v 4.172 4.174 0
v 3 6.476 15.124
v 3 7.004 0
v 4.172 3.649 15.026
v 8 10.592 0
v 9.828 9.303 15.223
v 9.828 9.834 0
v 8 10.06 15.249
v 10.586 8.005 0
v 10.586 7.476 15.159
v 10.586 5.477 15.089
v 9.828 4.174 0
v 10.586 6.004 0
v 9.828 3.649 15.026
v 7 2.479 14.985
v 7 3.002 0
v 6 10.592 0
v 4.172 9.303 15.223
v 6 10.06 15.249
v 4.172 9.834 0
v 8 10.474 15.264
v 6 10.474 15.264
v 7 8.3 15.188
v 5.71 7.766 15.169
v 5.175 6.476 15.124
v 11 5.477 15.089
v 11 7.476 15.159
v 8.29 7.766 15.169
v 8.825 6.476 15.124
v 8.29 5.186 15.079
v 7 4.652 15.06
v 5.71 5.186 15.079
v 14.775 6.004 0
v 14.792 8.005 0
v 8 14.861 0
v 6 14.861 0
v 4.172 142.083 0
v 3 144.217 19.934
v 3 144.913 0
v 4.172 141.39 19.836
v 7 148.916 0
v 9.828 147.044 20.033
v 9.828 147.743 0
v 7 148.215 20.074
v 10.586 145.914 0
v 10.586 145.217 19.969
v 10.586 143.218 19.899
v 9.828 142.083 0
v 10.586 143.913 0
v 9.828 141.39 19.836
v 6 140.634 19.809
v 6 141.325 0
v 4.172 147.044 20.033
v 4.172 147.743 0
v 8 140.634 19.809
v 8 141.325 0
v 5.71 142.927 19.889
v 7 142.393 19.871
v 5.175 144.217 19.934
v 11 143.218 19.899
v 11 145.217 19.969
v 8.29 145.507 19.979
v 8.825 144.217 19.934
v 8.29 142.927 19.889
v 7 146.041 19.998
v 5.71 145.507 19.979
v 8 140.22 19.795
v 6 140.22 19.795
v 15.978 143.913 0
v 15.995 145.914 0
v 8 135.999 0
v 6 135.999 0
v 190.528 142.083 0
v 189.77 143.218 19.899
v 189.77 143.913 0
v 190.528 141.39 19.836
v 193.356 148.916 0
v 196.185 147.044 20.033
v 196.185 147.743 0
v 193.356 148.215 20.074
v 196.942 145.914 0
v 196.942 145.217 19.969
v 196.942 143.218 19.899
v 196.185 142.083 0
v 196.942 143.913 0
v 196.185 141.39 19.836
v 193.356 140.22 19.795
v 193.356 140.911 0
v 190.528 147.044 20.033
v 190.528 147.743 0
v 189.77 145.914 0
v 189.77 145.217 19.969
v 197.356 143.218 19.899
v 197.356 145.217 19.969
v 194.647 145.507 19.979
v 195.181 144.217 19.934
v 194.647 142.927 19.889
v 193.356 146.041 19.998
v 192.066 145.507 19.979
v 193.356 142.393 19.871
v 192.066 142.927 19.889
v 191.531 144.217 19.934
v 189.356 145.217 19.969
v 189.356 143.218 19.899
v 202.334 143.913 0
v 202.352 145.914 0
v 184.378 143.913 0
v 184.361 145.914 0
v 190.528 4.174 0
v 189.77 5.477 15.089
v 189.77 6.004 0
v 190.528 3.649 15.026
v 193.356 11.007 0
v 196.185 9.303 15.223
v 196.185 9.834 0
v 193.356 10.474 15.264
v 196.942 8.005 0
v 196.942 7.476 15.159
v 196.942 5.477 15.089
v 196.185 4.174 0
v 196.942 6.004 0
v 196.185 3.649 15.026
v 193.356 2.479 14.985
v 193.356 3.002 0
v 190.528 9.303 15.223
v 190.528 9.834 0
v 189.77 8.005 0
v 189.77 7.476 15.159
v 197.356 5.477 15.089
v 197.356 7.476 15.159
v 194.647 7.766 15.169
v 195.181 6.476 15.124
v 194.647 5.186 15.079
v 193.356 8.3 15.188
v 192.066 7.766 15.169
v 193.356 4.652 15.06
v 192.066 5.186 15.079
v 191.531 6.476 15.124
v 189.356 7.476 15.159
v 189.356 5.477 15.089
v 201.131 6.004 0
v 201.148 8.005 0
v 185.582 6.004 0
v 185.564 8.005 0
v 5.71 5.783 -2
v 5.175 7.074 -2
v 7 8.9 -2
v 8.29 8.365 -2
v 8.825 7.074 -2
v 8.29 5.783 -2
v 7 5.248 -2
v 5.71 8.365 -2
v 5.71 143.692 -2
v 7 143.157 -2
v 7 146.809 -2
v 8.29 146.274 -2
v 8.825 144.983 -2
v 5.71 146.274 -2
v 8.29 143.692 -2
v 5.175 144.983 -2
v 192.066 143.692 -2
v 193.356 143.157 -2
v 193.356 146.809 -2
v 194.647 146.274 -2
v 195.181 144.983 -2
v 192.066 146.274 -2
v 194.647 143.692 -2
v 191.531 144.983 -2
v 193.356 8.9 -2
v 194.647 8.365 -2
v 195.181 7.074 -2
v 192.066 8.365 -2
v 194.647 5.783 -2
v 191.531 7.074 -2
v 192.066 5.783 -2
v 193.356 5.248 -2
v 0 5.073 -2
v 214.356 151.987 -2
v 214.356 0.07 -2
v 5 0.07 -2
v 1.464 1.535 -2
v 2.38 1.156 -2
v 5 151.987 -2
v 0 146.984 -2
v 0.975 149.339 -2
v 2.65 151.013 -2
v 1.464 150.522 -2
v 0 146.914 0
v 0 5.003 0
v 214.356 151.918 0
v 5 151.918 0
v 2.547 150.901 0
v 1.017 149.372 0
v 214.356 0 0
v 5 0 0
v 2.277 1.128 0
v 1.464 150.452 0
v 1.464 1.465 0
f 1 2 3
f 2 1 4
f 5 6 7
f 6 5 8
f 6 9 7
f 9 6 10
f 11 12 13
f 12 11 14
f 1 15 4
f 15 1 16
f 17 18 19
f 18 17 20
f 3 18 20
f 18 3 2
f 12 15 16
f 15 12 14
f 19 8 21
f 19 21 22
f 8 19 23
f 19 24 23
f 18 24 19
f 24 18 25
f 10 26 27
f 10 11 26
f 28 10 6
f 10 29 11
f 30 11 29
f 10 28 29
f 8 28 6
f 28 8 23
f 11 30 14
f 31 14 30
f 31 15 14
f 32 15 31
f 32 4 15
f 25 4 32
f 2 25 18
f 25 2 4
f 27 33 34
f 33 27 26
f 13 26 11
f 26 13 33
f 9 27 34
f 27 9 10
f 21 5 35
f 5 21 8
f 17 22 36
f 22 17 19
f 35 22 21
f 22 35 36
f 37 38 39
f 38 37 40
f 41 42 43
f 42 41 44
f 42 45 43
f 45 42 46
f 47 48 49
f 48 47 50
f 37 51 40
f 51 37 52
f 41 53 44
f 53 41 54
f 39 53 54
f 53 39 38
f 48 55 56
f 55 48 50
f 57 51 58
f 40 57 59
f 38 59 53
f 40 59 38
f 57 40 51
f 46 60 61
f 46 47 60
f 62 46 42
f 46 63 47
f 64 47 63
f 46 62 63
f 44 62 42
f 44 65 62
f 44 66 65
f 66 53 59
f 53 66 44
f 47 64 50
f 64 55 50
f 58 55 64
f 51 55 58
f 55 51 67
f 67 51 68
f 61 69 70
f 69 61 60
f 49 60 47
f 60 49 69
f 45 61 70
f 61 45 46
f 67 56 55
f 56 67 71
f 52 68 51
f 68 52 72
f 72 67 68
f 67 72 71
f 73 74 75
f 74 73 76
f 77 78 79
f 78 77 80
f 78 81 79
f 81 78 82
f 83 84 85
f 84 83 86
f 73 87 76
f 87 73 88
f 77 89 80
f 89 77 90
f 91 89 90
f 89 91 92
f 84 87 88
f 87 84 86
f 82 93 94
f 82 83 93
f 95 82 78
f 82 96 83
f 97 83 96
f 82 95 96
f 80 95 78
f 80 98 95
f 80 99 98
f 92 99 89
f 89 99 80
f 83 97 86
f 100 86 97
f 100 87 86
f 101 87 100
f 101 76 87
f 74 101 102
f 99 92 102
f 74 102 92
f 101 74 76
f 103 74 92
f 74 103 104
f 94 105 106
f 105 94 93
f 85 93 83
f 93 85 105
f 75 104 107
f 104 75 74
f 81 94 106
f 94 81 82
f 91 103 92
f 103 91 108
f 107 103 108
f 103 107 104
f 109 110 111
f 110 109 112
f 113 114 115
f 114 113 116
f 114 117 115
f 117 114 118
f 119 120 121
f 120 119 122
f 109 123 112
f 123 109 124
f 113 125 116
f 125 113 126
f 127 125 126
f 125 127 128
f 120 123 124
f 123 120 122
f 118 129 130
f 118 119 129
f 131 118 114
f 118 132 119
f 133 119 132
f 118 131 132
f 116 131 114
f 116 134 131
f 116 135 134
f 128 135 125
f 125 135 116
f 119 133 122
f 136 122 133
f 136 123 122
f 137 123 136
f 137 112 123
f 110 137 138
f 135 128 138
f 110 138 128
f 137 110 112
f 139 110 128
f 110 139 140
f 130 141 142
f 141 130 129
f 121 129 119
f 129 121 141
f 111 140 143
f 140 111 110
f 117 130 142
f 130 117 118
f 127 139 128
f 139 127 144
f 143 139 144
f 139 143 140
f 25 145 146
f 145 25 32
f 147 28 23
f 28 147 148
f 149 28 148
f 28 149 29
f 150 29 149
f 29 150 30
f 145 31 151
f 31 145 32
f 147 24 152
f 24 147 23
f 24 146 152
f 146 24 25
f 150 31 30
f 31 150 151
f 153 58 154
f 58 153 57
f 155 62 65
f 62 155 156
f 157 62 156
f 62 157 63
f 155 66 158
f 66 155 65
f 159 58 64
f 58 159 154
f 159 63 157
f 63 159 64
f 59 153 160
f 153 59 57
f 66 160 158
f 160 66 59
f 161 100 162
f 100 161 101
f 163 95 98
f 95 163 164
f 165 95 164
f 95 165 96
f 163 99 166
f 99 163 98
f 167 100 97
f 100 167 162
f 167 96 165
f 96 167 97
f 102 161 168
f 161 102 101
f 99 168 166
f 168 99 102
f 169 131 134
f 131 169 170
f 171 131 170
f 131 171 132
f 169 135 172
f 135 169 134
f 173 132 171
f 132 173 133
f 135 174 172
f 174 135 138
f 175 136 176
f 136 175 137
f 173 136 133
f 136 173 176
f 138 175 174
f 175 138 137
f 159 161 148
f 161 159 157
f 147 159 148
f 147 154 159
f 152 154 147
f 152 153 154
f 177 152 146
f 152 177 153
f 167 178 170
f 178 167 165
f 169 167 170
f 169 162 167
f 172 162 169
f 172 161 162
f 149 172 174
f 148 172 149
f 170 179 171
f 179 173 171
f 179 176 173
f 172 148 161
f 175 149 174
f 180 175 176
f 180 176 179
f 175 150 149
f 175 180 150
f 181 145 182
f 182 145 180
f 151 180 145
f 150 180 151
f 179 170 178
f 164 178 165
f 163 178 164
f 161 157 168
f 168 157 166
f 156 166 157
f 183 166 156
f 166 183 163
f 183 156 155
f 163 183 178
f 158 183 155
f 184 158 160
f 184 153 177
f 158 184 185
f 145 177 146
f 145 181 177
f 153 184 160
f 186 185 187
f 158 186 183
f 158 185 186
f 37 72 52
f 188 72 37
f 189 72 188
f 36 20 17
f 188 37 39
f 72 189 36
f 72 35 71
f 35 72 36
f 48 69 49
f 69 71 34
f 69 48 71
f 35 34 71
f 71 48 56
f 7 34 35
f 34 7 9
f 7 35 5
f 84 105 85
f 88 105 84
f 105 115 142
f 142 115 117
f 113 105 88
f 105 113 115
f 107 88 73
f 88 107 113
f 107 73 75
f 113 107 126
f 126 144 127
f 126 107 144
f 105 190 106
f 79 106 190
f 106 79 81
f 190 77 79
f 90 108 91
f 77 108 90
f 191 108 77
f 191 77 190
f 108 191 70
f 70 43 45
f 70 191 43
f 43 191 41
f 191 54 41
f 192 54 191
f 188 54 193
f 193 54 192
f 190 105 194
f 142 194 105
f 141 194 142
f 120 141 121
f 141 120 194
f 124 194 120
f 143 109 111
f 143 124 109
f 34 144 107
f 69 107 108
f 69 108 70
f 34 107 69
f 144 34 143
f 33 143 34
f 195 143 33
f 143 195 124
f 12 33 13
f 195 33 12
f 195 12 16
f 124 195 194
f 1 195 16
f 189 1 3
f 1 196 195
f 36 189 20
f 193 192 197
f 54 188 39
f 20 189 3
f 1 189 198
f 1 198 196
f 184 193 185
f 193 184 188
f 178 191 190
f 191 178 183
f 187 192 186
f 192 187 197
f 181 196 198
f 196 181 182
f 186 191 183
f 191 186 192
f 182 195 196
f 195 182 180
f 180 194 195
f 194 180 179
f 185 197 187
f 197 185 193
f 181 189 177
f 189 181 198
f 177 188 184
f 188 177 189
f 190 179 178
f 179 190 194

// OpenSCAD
// Generated by SolidPython 1.1.3 on 2025-01-18 15:26:41
$fn = 8;


difference() {
	intersection() {
		union() {
			difference() {
				rotate(a = 2, v = [1, 0, 0]) {
					translate(v = [0, 0, 15.4445000000]) {
						translate(v = [0, 133.8250000000, 0]) {
							translate(v = [10, 0, 0]) {
								difference() {
									translate(v = [-3, 0, 0]) {
										translate(v = [0, -126.8250000000, 0]) {
											translate(v = [0, 0, -68.5555000000]) {
												union() {
													translate(v = [0, 0, 0]) {
														translate(v = [0, 0, 0]) {
															union() {
																cylinder(h = 68, r = 4.0000000000);
																rotate(a = 90, v = [1, 0, 0]) {
																	linear_extrude(center = true, height = 2) {
																		polygon(paths = [[0, 1, 2, 3]], points = [[0, 0], [0, 68], [4.0000000000, 68], [21.0000000000, 0]]);
																	}
																}
																rotate(a = 90, v = [0, 0, 1]) {
																	rotate(a = 90, v = [1, 0, 0]) {
																		linear_extrude(center = true, height = 2) {
																			polygon(paths = [[0, 1, 2, 3]], points = [[0, 0], [0, 68], [4.0000000000, 68], [21.0000000000, 0]]);
																		}
																	}
																}
															}
														}
													}
													translate(v = [0, 0, 0]) {
														translate(v = [0, 137.8250000000, 0]) {
															union() {
																cylinder(h = 68, r = 4.0000000000);
																rotate(a = 90, v = [1, 0, 0]) {
																	linear_extrude(center = true, height = 2) {
																		polygon(paths = [[0, 1, 2, 3]], points = [[0, 0], [0, 68], [4.0000000000, 68], [21.0000000000, 0]]);
																	}
																}
																rotate(a = 270, v = [0, 0, 1]) {
																	rotate(a = 90, v = [1, 0, 0]) {
																		linear_extrude(center = true, height = 2) {
																			polygon(paths = [[0, 1, 2, 3]], points = [[0, 0], [0, 68], [4.0000000000, 68], [21.0000000000, 0]]);
																		}
																	}
																}
															}
														}
													}
													translate(v = [372.7125000000, 0, 0]) {
														translate(v = [0, 137.8250000000, 0]) {
															union() {
																cylinder(h = 68, r = 4.0000000000);
																rotate(a = 180, v = [0, 0, 1]) {
																	rotate(a = 90, v = [1, 0, 0]) {
																		linear_extrude(center = true, height = 2) {
																			polygon(paths = [[0, 1, 2, 3]], points = [[0, 0], [0, 68], [4.0000000000, 68], [21.0000000000, 0]]);
																		}
																	}
																}
																rotate(a = 270, v = [0, 0, 1]) {
																	rotate(a = 90, v = [1, 0, 0]) {
																		linear_extrude(center = true, height = 2) {
																			polygon(paths = [[0, 1, 2, 3]], points = [[0, 0], [0, 68], [4.0000000000, 68], [21.0000000000, 0]]);
																		}
																	}
																}
															}
														}
													}
													translate(v = [372.7125000000, 0, 0]) {
														translate(v = [0, 0, 0]) {
															union() {
																cylinder(h = 68, r = 4.0000000000);
																rotate(a = 180, v = [0, 0, 1]) {
																	rotate(a = 90, v = [1, 0, 0]) {
																		linear_extrude(center = true, height = 2) {
																			polygon(paths = [[0, 1, 2, 3]], points = [[0, 0], [0, 68], [4.0000000000, 68], [21.0000000000, 0]]);
																		}
																	}
																}
																rotate(a = 90, v = [0, 0, 1]) {
																	rotate(a = 90, v = [1, 0, 0]) {
																		linear_extrude(center = true, height = 2) {
																			polygon(paths = [[0, 1, 2, 3]], points = [[0, 0], [0, 68], [4.0000000000, 68], [21.0000000000, 0]]);
																		}
																	}
																}
															}
														}
													}
													translate(v = [186.3562500000, 0, 0]) {
														translate(v = [0, 137.8250000000, 0]) {
															union() {
																cylinder(h = 68, r = 4.0000000000);
																rotate(a = 90, v = [1, 0, 0]) {
																	linear_extrude(center = true, height = 2) {
																		polygon(paths = [[0, 1, 2, 3]], points = [[0, 0], [0, 68], [4.0000000000, 68], [21.0000000000, 0]]);
																	}
																}
																rotate(a = 180, v = [0, 0, 1]) {
																	rotate(a = 90, v = [1, 0, 0]) {
																		linear_extrude(center = true, height = 2) {
																			polygon(paths = [[0, 1, 2, 3]], points = [[0, 0], [0, 68], [4.0000000000, 68], [21.0000000000, 0]]);
																		}
																	}
																}
															}
														}
													}
													translate(v = [186.3562500000, 0, 0]) {
														translate(v = [0, 0, 0]) {
															union() {
																cylinder(h = 68, r = 4.0000000000);
																rotate(a = 90, v = [1, 0, 0]) {
																	linear_extrude(center = true, height = 2) {
																		polygon(paths = [[0, 1, 2, 3]], points = [[0, 0], [0, 68], [4.0000000000, 68], [21.0000000000, 0]]);
																	}
																}
																rotate(a = 180, v = [0, 0, 1]) {
																	rotate(a = 90, v = [1, 0, 0]) {
																		linear_extrude(center = true, height = 2) {
																			polygon(paths = [[0, 1, 2, 3]], points = [[0, 0], [0, 68], [4.0000000000, 68], [21.0000000000, 0]]);
																		}
																	}
																}
															}
														}
													}
												}
											}
										}
									}
									translate(v = [-3, 0, 0]) {
										translate(v = [0, -126.8250000000, 0]) {
											union() {
												translate(v = [0, 0, 0]) {
													translate(v = [0, 0, 0]) {
														cylinder(center = true, h = 272, r = 1.8250000000);
													}
												}
												translate(v = [0, 0, 0]) {
													translate(v = [0, 137.8250000000, 0]) {
														cylinder(center = true, h = 272, r = 1.8250000000);
													}
												}
												translate(v = [372.7125000000, 0, 0]) {
													translate(v = [0, 137.8250000000, 0]) {
														cylinder(center = true, h = 272, r = 1.8250000000);
													}
												}
												translate(v = [372.7125000000, 0, 0]) {
													translate(v = [0, 0, 0]) {
														cylinder(center = true, h = 272, r = 1.8250000000);
													}
												}
												translate(v = [186.3562500000, 0, 0]) {
													translate(v = [0, 137.8250000000, 0]) {
														cylinder(center = true, h = 272, r = 1.8250000000);
													}
												}
												translate(v = [186.3562500000, 0, 0]) {
													translate(v = [0, 0, 0]) {
														cylinder(center = true, h = 272, r = 1.8250000000);
													}
												}
											}
										}
									}
								}
							}
						}
					}
				}
				translate(v = [0, 0, -2]) {
					translate(v = [0, 0, -100]) {
						translate(v = [0, -75.9125000000, 0]) {
							translate(v = [-193.3562500000, 0, 0]) {
								cube(size = [773.4250000000, 303.6500000000, 100]);
							}
						}
					}
				}
			}
			intersection() {
				translate(v = [0, 0, -2]) {
					translate(v = [-193.3562500000, 0, 0]) {
						translate(v = [0, -75.9125000000, 0]) {
							cube(size = [773.4250000000, 303.6500000000, 2]);
						}
					}
				}
				rotate(a = 2, v = [1, 0, 0]) {
					translate(v = [0, 0, 15.4445000000]) {
						translate(v = [0, 133.8250000000, 0]) {
							translate(v = [10, 0, 0]) {
								translate(v = [0, 0, -34.0000000000]) {
									translate(v = [183.3562500000, 0, 0]) {
										translate(v = [0, -57.9125000000, 0]) {
											minkowski() {
												cube(center = true, size = [376.7125000000, 141.8250000000, 68]);
												cylinder(center = true, h = 0.5555000000, r = 5);
											}
										}
									}
								}
							}
						}
					}
				}
			}
		}
		translate(v = [0, 0, 15.4445000000]) {
			translate(v = [0, 133.8250000000, 0]) {
				translate(v = [10, 0, 0]) {
					translate(v = [-10.0000000000, 0, 0]) {
						translate(v = [0, -227.7375000000, 0]) {
							translate(v = [0, 0, -34.0000000000]) {
								cube(size = [214.3562500000, 303.6500000000, 136]);
							}
						}
					}
				}
			}
		}
	}
	rotate(a = 2, v = [1, 0, 0]) {
		translate(v = [0, 0, 15.4445000000]) {
			translate(v = [0, 133.8250000000, 0]) {
				translate(v = [10, 0, 0]) {
					translate(v = [-3, 0, 0]) {
						translate(v = [0, -126.8250000000, 0]) {
							union() {
								translate(v = [0, 0, 0]) {
									translate(v = [0, 0, 0]) {
										cylinder(center = true, h = 272, r = 1.8250000000);
									}
								}
								translate(v = [0, 0, 0]) {
									translate(v = [0, 137.8250000000, 0]) {
										cylinder(center = true, h = 272, r = 1.8250000000);
									}
								}
								translate(v = [372.7125000000, 0, 0]) {
									translate(v = [0, 137.8250000000, 0]) {
										cylinder(center = true, h = 272, r = 1.8250000000);
									}
								}
								translate(v = [372.7125000000, 0, 0]) {
									translate(v = [0, 0, 0]) {
										cylinder(center = true, h = 272, r = 1.8250000000);
									}
								}
								translate(v = [186.3562500000, 0, 0]) {
									translate(v = [0, 137.8250000000, 0]) {
										cylinder(center = true, h = 272, r = 1.8250000000);
									}
								}
								translate(v = [186.3562500000, 0, 0]) {
									translate(v = [0, 0, 0]) {
										cylinder(center = true, h = 272, r = 1.8250000000);
									}
								}
							}
						}
					}
				}
			}
		}
	}
}
/***********************************************
*********      SolidPython code:      **********
************************************************
 
#!/usr/bin/env python3

import argparse
from asyncio import subprocess
import json
# import math
import re
import logging
import os
# import os.path
import subprocess
# import time

from solid import *
from solid.utils import *

from parameters import Parameters
from keyboard import Keyboard
from cable import Cable

# Set logger level variables
console_logging_level = logging.WARN
file_logging_level = logging.DEBUG


# Get root logger and set main logger level to DEBUG
logger = logging.getLogger()
logger.setLevel(logging.DEBUG)


# Create formatters
console_formatter = logging.Formatter('%(name)s %(levelname)s: %(funcName)s: [%(lineno)d]: %(message)s')
file_formatter = logging.Formatter('%(asctime)s %(levelname)s %(name)s: %(funcName)s: [%(lineno)d]: %(message)s')

# Create console handler and set level to info
console_handler = logging.StreamHandler()
console_handler.setLevel(console_logging_level)

# Add formatter to console_handler
console_handler.setFormatter(console_formatter)

# Add console handler to logger
logger.addHandler(console_handler)

# Get file info that will be used to creat log file
script_location = Path(os.path.dirname(os.path.realpath(__file__)))
log_file_name = 'generator.log'
log_file_path = script_location / log_file_name

# Create file handler and set level to info
file_handler = logging.FileHandler(log_file_path, mode = 'w')
file_handler.setLevel(file_logging_level)

# Add formatter to file_handler
file_handler.setFormatter(file_formatter)

# Add file handler to logger
logger.addHandler(file_handler)


# Helper for parser to wnsure filename argument has to correct extension
def CheckExt(choices):
    class Act(argparse.Action):
        def __call__(self,parser,namespace,fname,option_string=None):
            ext = os.path.splitext(fname)[1][1:]
            if ext not in choices:
                option_string = '({})'.format(option_string) if option_string else ''
                parser.error("file doesn't end with one of {}{}".format(choices,option_string))
            else:
                setattr(namespace,self.dest,fname)

    return Act



def main():

    parser = argparse.ArgumentParser(description='Build custom keyboard SCAD file using keyboard layout editor format')
    parser.add_argument('-i', '--input-file', metavar = 'layout_json_file_name.json', help = 'A path to a keyboard layout editor json file', required = True, action=CheckExt({'json'}))
    # parser.add_argument('-o', '--output-folder', metavar = 'scad', help = 'A path to a folder to store the generated open scad file')
    parser.add_argument('-p', '--parameter-file', metavar = 'parameters.json', help = 'A JSON file containing paramters for the object buing made', default = None, action=CheckExt({'json'}))
    parser.add_argument('-s', '--section', metavar = 'section_num', help = 'The number of the section that should be built', type = int, default = -1)
    parser.add_argument('-a', '--all-sections', help = 'Output all the parts for all possible sections in separate files', default = False, action = 'store_true')
    parser.add_argument('-e', '--exploded', help = 'Create test file with each section shown as an exploded view', default = False, action = 'store_true')
    parser.add_argument('-f', '--fragments', metavar = 'num_fragments', help = 'The number of fragments to be used when creating curves', type = int, default = 8)
    parser.add_argument('-r', '--render', help = 'Render an STL from the generated scad file', default = False, action = 'store_true')
    parser.add_argument('--switch-type-in-filename', help = 'Add the switch type name and stabilizer type name to the filname', default = False, action = 'store_true')

    # Parse command line arguments
    args = parser.parse_args()
    logger.debug(vars(args))

    # Create Path object from input file argument
    input_file_path = Path(args.input_file)

    # Get base folder path
    base_path = input_file_path.parent

    # Get input file name onle
    file_name_only = input_file_path.name
    
    # Get layout name from file name
    layout_name = input_file_path.stem

    # Generate output scad and stl output folder paths
    output_base_folder = base_path / layout_name
    scad_folder_path = output_base_folder / 'scad'
    stl_folder_path = output_base_folder / 'stl'

    # Ensure all outpur folders exists
    if output_base_folder.is_dir() == False:
        output_base_folder.mkdir()

    if scad_folder_path.is_dir() == False:
        scad_folder_path.mkdir()

    if stl_folder_path.is_dir() == False:
        stl_folder_path.mkdir()

    logger.debug('layout_name: %s', str(layout_name))
    logger.debug('base_path: %s', str(base_path))
    logger.debug('file_name_only: %s', str(file_name_only))
    
    # define output file extensions
    scad_postfix = '.scad'
    stl_postfix  = '.stl'

    # Set fragments per circle
    FRAGMENTS = args.fragments
    logger.debug('\tFragments: %d', FRAGMENTS)

    # Pattern and Replacement strings to be used when trying to turn keyboard-layout-editor raw output into valid JSON
    json_key_pattern = '([{,])([xywha1]+):'
    json_key_replace = '\\1"\\2":'

    # Open JSON layout file
    logger.debug('Open layout file %s', input_file_path)
    try:
        # Try with utf-8 encoding specified
        f = open(input_file_path, encoding="utf-8")
    except:
        # Failed to open
        logger.info('Failed to open layout file with utf-8 encoding specified. Try opening without specifying an encoding')
        try:
            # Try opening with no encoding spcificed
            f = open(input_file_path)
        except:
            logger.error('Failed to open layout file both spefifying utf-8 andcoding and not specifying any encodeing. Exiting')
            exit(1)

    logger.debug('Read layout JSON string from file %s', input_file_path)
    try:
        keyboard_layout = f.read()
    except UnicodeDecodeError:
        logger.error('Unable to decode layout file. Please provide utf-8 encoded files')
        exit(-1)

    keyboard_layout_dict = None

    # Load keyboard layout dictionary
    logger.debug('Parse layout file JSON string')
    try:
        # Attempt to parse to provided JSON string
        keyboard_layout_dict = json.loads(keyboard_layout)
        logger.debug('Valid Json Parsed')
    except:
        # Failed to parse the JSON test.
        # This most likely means that the keybaord-layout-editor raw output was provided
        # Attempt to modify that string to make it valid JSON
        keyboard_layout = '[%s]' % (keyboard_layout)
        keyboard_layout = re.sub(json_key_pattern, json_key_replace, keyboard_layout)
        try:
            keyboard_layout_dict = json.loads(keyboard_layout)
            logger.info('Initial layout Json Invalid. Json modified and parsed')
        except:
            logger.error('Failed to parse layout json after attempt at correction.')
            raise

    logger.debug('keyboard_layout_dict: %s', str(keyboard_layout_dict))


    # Read parameter file
    parameter_dict = None
    if args.parameter_file is not None:
        # Open JSON parameter file
        logger.debug('Open parameter file %s', args.parameter_file)
        try:
            # Try with utf-8 encoding specified
            f = open(args.parameter_file, encoding="utf-8")
        except:
            # Failed to open
            logger.info('Failed to open parameter file with utf-8 encoding specified. Try opening without specifying an encoding')
            try:
                # Try opening with no encoding spcificed
                f = open(args.parameter_fil)
            except:
                logger.error('Failed to open parameter file both spefifying utf-8 andcoding and not specifying any encodeing. Exiting')
                exit(1)
        

        logger.debug('Read JSON string from parameter file %s', args.parameter_file)
        try:
             parameter_file_text = f.read()
        except UnicodeDecodeError:
            logger.error('Unable to decode parameter file. Please provide utf-8 encoded files')
            exit(-1)
       
        logger.debug('Parse parameter JSON string')
        try:
            parameter_dict = json.loads(parameter_file_text)
            logger.debug('Valid Json Parsed')
        except:
            logger.error('Failed to parse parameter JSON file.')
            raise

        logger.debug('parameter_dict: %s', str(parameter_dict))


    # Set parameters from imput file
    parameters = Parameters(parameter_dict)
    
    # Create Keyboard instance
    keyboard = Keyboard(parameters)

    # Process the keyboard layout object
    keyboard.process_keyboard_layout(keyboard_layout_dict)
    keyboard.process_custom_shapes()

    logger.debug('kerf: %f', keyboard.kerf)

    # Dictionary of SolidPython solid objects that need to be rendered to SCAD and to STL if desired
    solid_object_dict = {}

    # Create objects for each of the generated sections
    if args.all_sections == True:
        # Iterate over all sections generated and add all sections to solid_object_dict
        for section in range(keyboard.get_top_section_count()):
            # Set current section for generator
            keyboard.set_section(section)

            # Create dict for section
            solid_object_dict[section] = {}

            # Add top assembly, plate, and all assembly to section dict
            solid_object_dict[section]['top'] = keyboard.get_assembly(top = True)
            solid_object_dict[section]['all'] = keyboard.get_assembly(all = True)
            solid_object_dict[section]['plate'] = keyboard.get_assembly(plate_only = True)

            # If there is a bottom section for the current section add it to section dict
            if section < keyboard.get_bottom_section_count():
                solid_object_dict[section]['bottom'] = keyboard.get_assembly(bottom = True)
            
    # Create exploded object
    elif args.exploded == True:
        solid_object_dict[-1] = {}
        solid_object_dict[-1]['top'] = union()
        solid_object_dict[-1]['plate'] = union()
        solid_object_dict[-1]['bottom'] = union()
        for section in range(keyboard.get_top_section_count()):
            keyboard.set_section(section)
            solid_object_dict[-1]['top'] += up(5 * section) ( right(10 * section) ( keyboard.get_assembly(top = True) ) )
            solid_object_dict[-1]['plate'] += up(5 * section) ( right(10 * section) ( keyboard.get_assembly(plate_only = True) ) )
            if section < keyboard.get_bottom_section_count():
                solid_object_dict[-1]['bottom'] += up(5 * section) ( right(10 * section) ( keyboard.get_assembly(bottom = True) ) )
    

    # Create objects for a specified section
    elif args.section > -1:
        # Set desired section to create
        keyboard.set_section(args.section)

        # Create dict for section
        solid_object_dict[args.section] = {}

        # Add top assembly, plate, and all assembly to section dict
        solid_object_dict[args.section]['top'] = keyboard.get_assembly(top = True)
        solid_object_dict[args.section]['all'] = keyboard.get_assembly(all = True)
        solid_object_dict[args.section]['plate'] = keyboard.get_assembly(plate_only = True)

        # If there is a bottom section for the current section add it to section dict
        if args.section < keyboard.get_bottom_section_count():
            solid_object_dict[args.section]['bottom'] = keyboard.get_assembly(bottom = True)

    # Create an objects that are not split into sections. No other options were specified
    else:
        logger.debug('Create whole object. No other options specified')
        solid_object_dict['all'] = {}
        solid_object_dict['all']['top'] = keyboard.get_assembly(top = True)
        solid_object_dict['all']['bottom'] = keyboard.get_assembly(bottom = True)
        solid_object_dict['all']['all'] = keyboard.get_assembly(all = True)
        solid_object_dict['all']['plate'] = keyboard.get_assembly(plate_only = True)
    
    # Add global items that are not dependant on the sctions or parts of the item to build
    solid_object_dict['global'] = {}

    # Generate a strain relief piece for the cable hole
    if parameters.cable_hole == True:
        cable = Cable(parameters)
        solid_object_dict['global']['cable_holder_main'] = cable.holder_main()
        solid_object_dict['global']['cable_holder_clamp'] = cable.holder_clamp()
        solid_object_dict['global']['cable_holder_all'] = cable.holder_all()

    print(parameters)
    print('Case Height: %f, Case Width: %f\n' % (parameters.real_case_height, parameters.real_case_width))
    
    logger.info('Case Height: %f, Case Width: %f', parameters.real_case_height, parameters.real_case_width)
    logger.info('Sections In Top: %d', keyboard.get_top_section_count())
    logger.info('Sections In Bottom: %d', keyboard.get_bottom_section_count())


    ############################################################
    # Render SCAD and STL files
    ############################################################
    subprocess_dict = {}

    switch_type_for_filename = ''
    stab_type_for_filename = ''

    for section in solid_object_dict.keys():

        if args.switch_type_in_filename == True:
            switch_type_for_filename = '_' + parameters.switch_type
            stab_type_for_filename = '_' + parameters.stabilizer_type

        section_postfix = ''

        # Creating global items that have no relaton to switch type
        if isinstance(section, str) and section == 'global':
            switch_type_for_filename = ''
            stab_type_for_filename = ''
        
        # If the current object dict section is an int greater than -1 add the section number to the filename
        if isinstance(section, int) and section > -1:
            section_postfix = '_section_%d' % (section)
        
        if args.exploded == True:
            section_postfix = '_exploded'

        for part_name in solid_object_dict[section].keys():
            part_name_formatted = '_' + part_name

            scad_file_name = scad_folder_path / (layout_name + section_postfix + part_name_formatted + switch_type_for_filename + stab_type_for_filename + scad_postfix)
            stl_file_name = stl_folder_path / (layout_name + section_postfix + part_name_formatted + switch_type_for_filename + stab_type_for_filename + stl_postfix)

            if solid_object_dict[section][part_name] is not None:
                logger.info('Generate scad file with name %s', scad_file_name)
                # Generate SCAD file from assembly
                scad_render_to_file(solid_object_dict[section][part_name], scad_file_name, file_header=f'$fn = {FRAGMENTS};')
                print('Generated scad file with name', scad_file_name)
                
                # Render STL if option is chosen
                if args.render:
                    logger.debug('Render STL from SCAD')
                    logger.info('Generate stl file with name %s from %s', stl_file_name, scad_file_name)

                    openscad_command_list = ['openscad', '-o', '%s' % (stl_file_name), '%s' % (scad_file_name)]
                    subprocess_dict[stl_file_name] = subprocess.Popen(openscad_command_list)
    
    
    ################################################################
    #  Wait for render processes to complete
    ################################################################
    if args.render:
        logger.debug(subprocess_dict)
        running = True
        while running == True:
            running = False
            for stl_file_name in subprocess_dict.keys():
                p = subprocess_dict[stl_file_name]
                if p is not None:
                    # running = True
                    rcode = None
                    try:
                        rcode = p.wait(.1)
                    except subprocess.TimeoutExpired as err:
                        running = True
                    if rcode is not None:
                        logger.info('Render Complete: file: %s', stl_file_name)
                        print('Render Complete: file:', stl_file_name)
                        subprocess_dict[stl_file_name] = None
            # time.sleep(1)



    logger.info('Generation Complete')

if __name__ == "__main__":
    main()
 
 
************************************************/
